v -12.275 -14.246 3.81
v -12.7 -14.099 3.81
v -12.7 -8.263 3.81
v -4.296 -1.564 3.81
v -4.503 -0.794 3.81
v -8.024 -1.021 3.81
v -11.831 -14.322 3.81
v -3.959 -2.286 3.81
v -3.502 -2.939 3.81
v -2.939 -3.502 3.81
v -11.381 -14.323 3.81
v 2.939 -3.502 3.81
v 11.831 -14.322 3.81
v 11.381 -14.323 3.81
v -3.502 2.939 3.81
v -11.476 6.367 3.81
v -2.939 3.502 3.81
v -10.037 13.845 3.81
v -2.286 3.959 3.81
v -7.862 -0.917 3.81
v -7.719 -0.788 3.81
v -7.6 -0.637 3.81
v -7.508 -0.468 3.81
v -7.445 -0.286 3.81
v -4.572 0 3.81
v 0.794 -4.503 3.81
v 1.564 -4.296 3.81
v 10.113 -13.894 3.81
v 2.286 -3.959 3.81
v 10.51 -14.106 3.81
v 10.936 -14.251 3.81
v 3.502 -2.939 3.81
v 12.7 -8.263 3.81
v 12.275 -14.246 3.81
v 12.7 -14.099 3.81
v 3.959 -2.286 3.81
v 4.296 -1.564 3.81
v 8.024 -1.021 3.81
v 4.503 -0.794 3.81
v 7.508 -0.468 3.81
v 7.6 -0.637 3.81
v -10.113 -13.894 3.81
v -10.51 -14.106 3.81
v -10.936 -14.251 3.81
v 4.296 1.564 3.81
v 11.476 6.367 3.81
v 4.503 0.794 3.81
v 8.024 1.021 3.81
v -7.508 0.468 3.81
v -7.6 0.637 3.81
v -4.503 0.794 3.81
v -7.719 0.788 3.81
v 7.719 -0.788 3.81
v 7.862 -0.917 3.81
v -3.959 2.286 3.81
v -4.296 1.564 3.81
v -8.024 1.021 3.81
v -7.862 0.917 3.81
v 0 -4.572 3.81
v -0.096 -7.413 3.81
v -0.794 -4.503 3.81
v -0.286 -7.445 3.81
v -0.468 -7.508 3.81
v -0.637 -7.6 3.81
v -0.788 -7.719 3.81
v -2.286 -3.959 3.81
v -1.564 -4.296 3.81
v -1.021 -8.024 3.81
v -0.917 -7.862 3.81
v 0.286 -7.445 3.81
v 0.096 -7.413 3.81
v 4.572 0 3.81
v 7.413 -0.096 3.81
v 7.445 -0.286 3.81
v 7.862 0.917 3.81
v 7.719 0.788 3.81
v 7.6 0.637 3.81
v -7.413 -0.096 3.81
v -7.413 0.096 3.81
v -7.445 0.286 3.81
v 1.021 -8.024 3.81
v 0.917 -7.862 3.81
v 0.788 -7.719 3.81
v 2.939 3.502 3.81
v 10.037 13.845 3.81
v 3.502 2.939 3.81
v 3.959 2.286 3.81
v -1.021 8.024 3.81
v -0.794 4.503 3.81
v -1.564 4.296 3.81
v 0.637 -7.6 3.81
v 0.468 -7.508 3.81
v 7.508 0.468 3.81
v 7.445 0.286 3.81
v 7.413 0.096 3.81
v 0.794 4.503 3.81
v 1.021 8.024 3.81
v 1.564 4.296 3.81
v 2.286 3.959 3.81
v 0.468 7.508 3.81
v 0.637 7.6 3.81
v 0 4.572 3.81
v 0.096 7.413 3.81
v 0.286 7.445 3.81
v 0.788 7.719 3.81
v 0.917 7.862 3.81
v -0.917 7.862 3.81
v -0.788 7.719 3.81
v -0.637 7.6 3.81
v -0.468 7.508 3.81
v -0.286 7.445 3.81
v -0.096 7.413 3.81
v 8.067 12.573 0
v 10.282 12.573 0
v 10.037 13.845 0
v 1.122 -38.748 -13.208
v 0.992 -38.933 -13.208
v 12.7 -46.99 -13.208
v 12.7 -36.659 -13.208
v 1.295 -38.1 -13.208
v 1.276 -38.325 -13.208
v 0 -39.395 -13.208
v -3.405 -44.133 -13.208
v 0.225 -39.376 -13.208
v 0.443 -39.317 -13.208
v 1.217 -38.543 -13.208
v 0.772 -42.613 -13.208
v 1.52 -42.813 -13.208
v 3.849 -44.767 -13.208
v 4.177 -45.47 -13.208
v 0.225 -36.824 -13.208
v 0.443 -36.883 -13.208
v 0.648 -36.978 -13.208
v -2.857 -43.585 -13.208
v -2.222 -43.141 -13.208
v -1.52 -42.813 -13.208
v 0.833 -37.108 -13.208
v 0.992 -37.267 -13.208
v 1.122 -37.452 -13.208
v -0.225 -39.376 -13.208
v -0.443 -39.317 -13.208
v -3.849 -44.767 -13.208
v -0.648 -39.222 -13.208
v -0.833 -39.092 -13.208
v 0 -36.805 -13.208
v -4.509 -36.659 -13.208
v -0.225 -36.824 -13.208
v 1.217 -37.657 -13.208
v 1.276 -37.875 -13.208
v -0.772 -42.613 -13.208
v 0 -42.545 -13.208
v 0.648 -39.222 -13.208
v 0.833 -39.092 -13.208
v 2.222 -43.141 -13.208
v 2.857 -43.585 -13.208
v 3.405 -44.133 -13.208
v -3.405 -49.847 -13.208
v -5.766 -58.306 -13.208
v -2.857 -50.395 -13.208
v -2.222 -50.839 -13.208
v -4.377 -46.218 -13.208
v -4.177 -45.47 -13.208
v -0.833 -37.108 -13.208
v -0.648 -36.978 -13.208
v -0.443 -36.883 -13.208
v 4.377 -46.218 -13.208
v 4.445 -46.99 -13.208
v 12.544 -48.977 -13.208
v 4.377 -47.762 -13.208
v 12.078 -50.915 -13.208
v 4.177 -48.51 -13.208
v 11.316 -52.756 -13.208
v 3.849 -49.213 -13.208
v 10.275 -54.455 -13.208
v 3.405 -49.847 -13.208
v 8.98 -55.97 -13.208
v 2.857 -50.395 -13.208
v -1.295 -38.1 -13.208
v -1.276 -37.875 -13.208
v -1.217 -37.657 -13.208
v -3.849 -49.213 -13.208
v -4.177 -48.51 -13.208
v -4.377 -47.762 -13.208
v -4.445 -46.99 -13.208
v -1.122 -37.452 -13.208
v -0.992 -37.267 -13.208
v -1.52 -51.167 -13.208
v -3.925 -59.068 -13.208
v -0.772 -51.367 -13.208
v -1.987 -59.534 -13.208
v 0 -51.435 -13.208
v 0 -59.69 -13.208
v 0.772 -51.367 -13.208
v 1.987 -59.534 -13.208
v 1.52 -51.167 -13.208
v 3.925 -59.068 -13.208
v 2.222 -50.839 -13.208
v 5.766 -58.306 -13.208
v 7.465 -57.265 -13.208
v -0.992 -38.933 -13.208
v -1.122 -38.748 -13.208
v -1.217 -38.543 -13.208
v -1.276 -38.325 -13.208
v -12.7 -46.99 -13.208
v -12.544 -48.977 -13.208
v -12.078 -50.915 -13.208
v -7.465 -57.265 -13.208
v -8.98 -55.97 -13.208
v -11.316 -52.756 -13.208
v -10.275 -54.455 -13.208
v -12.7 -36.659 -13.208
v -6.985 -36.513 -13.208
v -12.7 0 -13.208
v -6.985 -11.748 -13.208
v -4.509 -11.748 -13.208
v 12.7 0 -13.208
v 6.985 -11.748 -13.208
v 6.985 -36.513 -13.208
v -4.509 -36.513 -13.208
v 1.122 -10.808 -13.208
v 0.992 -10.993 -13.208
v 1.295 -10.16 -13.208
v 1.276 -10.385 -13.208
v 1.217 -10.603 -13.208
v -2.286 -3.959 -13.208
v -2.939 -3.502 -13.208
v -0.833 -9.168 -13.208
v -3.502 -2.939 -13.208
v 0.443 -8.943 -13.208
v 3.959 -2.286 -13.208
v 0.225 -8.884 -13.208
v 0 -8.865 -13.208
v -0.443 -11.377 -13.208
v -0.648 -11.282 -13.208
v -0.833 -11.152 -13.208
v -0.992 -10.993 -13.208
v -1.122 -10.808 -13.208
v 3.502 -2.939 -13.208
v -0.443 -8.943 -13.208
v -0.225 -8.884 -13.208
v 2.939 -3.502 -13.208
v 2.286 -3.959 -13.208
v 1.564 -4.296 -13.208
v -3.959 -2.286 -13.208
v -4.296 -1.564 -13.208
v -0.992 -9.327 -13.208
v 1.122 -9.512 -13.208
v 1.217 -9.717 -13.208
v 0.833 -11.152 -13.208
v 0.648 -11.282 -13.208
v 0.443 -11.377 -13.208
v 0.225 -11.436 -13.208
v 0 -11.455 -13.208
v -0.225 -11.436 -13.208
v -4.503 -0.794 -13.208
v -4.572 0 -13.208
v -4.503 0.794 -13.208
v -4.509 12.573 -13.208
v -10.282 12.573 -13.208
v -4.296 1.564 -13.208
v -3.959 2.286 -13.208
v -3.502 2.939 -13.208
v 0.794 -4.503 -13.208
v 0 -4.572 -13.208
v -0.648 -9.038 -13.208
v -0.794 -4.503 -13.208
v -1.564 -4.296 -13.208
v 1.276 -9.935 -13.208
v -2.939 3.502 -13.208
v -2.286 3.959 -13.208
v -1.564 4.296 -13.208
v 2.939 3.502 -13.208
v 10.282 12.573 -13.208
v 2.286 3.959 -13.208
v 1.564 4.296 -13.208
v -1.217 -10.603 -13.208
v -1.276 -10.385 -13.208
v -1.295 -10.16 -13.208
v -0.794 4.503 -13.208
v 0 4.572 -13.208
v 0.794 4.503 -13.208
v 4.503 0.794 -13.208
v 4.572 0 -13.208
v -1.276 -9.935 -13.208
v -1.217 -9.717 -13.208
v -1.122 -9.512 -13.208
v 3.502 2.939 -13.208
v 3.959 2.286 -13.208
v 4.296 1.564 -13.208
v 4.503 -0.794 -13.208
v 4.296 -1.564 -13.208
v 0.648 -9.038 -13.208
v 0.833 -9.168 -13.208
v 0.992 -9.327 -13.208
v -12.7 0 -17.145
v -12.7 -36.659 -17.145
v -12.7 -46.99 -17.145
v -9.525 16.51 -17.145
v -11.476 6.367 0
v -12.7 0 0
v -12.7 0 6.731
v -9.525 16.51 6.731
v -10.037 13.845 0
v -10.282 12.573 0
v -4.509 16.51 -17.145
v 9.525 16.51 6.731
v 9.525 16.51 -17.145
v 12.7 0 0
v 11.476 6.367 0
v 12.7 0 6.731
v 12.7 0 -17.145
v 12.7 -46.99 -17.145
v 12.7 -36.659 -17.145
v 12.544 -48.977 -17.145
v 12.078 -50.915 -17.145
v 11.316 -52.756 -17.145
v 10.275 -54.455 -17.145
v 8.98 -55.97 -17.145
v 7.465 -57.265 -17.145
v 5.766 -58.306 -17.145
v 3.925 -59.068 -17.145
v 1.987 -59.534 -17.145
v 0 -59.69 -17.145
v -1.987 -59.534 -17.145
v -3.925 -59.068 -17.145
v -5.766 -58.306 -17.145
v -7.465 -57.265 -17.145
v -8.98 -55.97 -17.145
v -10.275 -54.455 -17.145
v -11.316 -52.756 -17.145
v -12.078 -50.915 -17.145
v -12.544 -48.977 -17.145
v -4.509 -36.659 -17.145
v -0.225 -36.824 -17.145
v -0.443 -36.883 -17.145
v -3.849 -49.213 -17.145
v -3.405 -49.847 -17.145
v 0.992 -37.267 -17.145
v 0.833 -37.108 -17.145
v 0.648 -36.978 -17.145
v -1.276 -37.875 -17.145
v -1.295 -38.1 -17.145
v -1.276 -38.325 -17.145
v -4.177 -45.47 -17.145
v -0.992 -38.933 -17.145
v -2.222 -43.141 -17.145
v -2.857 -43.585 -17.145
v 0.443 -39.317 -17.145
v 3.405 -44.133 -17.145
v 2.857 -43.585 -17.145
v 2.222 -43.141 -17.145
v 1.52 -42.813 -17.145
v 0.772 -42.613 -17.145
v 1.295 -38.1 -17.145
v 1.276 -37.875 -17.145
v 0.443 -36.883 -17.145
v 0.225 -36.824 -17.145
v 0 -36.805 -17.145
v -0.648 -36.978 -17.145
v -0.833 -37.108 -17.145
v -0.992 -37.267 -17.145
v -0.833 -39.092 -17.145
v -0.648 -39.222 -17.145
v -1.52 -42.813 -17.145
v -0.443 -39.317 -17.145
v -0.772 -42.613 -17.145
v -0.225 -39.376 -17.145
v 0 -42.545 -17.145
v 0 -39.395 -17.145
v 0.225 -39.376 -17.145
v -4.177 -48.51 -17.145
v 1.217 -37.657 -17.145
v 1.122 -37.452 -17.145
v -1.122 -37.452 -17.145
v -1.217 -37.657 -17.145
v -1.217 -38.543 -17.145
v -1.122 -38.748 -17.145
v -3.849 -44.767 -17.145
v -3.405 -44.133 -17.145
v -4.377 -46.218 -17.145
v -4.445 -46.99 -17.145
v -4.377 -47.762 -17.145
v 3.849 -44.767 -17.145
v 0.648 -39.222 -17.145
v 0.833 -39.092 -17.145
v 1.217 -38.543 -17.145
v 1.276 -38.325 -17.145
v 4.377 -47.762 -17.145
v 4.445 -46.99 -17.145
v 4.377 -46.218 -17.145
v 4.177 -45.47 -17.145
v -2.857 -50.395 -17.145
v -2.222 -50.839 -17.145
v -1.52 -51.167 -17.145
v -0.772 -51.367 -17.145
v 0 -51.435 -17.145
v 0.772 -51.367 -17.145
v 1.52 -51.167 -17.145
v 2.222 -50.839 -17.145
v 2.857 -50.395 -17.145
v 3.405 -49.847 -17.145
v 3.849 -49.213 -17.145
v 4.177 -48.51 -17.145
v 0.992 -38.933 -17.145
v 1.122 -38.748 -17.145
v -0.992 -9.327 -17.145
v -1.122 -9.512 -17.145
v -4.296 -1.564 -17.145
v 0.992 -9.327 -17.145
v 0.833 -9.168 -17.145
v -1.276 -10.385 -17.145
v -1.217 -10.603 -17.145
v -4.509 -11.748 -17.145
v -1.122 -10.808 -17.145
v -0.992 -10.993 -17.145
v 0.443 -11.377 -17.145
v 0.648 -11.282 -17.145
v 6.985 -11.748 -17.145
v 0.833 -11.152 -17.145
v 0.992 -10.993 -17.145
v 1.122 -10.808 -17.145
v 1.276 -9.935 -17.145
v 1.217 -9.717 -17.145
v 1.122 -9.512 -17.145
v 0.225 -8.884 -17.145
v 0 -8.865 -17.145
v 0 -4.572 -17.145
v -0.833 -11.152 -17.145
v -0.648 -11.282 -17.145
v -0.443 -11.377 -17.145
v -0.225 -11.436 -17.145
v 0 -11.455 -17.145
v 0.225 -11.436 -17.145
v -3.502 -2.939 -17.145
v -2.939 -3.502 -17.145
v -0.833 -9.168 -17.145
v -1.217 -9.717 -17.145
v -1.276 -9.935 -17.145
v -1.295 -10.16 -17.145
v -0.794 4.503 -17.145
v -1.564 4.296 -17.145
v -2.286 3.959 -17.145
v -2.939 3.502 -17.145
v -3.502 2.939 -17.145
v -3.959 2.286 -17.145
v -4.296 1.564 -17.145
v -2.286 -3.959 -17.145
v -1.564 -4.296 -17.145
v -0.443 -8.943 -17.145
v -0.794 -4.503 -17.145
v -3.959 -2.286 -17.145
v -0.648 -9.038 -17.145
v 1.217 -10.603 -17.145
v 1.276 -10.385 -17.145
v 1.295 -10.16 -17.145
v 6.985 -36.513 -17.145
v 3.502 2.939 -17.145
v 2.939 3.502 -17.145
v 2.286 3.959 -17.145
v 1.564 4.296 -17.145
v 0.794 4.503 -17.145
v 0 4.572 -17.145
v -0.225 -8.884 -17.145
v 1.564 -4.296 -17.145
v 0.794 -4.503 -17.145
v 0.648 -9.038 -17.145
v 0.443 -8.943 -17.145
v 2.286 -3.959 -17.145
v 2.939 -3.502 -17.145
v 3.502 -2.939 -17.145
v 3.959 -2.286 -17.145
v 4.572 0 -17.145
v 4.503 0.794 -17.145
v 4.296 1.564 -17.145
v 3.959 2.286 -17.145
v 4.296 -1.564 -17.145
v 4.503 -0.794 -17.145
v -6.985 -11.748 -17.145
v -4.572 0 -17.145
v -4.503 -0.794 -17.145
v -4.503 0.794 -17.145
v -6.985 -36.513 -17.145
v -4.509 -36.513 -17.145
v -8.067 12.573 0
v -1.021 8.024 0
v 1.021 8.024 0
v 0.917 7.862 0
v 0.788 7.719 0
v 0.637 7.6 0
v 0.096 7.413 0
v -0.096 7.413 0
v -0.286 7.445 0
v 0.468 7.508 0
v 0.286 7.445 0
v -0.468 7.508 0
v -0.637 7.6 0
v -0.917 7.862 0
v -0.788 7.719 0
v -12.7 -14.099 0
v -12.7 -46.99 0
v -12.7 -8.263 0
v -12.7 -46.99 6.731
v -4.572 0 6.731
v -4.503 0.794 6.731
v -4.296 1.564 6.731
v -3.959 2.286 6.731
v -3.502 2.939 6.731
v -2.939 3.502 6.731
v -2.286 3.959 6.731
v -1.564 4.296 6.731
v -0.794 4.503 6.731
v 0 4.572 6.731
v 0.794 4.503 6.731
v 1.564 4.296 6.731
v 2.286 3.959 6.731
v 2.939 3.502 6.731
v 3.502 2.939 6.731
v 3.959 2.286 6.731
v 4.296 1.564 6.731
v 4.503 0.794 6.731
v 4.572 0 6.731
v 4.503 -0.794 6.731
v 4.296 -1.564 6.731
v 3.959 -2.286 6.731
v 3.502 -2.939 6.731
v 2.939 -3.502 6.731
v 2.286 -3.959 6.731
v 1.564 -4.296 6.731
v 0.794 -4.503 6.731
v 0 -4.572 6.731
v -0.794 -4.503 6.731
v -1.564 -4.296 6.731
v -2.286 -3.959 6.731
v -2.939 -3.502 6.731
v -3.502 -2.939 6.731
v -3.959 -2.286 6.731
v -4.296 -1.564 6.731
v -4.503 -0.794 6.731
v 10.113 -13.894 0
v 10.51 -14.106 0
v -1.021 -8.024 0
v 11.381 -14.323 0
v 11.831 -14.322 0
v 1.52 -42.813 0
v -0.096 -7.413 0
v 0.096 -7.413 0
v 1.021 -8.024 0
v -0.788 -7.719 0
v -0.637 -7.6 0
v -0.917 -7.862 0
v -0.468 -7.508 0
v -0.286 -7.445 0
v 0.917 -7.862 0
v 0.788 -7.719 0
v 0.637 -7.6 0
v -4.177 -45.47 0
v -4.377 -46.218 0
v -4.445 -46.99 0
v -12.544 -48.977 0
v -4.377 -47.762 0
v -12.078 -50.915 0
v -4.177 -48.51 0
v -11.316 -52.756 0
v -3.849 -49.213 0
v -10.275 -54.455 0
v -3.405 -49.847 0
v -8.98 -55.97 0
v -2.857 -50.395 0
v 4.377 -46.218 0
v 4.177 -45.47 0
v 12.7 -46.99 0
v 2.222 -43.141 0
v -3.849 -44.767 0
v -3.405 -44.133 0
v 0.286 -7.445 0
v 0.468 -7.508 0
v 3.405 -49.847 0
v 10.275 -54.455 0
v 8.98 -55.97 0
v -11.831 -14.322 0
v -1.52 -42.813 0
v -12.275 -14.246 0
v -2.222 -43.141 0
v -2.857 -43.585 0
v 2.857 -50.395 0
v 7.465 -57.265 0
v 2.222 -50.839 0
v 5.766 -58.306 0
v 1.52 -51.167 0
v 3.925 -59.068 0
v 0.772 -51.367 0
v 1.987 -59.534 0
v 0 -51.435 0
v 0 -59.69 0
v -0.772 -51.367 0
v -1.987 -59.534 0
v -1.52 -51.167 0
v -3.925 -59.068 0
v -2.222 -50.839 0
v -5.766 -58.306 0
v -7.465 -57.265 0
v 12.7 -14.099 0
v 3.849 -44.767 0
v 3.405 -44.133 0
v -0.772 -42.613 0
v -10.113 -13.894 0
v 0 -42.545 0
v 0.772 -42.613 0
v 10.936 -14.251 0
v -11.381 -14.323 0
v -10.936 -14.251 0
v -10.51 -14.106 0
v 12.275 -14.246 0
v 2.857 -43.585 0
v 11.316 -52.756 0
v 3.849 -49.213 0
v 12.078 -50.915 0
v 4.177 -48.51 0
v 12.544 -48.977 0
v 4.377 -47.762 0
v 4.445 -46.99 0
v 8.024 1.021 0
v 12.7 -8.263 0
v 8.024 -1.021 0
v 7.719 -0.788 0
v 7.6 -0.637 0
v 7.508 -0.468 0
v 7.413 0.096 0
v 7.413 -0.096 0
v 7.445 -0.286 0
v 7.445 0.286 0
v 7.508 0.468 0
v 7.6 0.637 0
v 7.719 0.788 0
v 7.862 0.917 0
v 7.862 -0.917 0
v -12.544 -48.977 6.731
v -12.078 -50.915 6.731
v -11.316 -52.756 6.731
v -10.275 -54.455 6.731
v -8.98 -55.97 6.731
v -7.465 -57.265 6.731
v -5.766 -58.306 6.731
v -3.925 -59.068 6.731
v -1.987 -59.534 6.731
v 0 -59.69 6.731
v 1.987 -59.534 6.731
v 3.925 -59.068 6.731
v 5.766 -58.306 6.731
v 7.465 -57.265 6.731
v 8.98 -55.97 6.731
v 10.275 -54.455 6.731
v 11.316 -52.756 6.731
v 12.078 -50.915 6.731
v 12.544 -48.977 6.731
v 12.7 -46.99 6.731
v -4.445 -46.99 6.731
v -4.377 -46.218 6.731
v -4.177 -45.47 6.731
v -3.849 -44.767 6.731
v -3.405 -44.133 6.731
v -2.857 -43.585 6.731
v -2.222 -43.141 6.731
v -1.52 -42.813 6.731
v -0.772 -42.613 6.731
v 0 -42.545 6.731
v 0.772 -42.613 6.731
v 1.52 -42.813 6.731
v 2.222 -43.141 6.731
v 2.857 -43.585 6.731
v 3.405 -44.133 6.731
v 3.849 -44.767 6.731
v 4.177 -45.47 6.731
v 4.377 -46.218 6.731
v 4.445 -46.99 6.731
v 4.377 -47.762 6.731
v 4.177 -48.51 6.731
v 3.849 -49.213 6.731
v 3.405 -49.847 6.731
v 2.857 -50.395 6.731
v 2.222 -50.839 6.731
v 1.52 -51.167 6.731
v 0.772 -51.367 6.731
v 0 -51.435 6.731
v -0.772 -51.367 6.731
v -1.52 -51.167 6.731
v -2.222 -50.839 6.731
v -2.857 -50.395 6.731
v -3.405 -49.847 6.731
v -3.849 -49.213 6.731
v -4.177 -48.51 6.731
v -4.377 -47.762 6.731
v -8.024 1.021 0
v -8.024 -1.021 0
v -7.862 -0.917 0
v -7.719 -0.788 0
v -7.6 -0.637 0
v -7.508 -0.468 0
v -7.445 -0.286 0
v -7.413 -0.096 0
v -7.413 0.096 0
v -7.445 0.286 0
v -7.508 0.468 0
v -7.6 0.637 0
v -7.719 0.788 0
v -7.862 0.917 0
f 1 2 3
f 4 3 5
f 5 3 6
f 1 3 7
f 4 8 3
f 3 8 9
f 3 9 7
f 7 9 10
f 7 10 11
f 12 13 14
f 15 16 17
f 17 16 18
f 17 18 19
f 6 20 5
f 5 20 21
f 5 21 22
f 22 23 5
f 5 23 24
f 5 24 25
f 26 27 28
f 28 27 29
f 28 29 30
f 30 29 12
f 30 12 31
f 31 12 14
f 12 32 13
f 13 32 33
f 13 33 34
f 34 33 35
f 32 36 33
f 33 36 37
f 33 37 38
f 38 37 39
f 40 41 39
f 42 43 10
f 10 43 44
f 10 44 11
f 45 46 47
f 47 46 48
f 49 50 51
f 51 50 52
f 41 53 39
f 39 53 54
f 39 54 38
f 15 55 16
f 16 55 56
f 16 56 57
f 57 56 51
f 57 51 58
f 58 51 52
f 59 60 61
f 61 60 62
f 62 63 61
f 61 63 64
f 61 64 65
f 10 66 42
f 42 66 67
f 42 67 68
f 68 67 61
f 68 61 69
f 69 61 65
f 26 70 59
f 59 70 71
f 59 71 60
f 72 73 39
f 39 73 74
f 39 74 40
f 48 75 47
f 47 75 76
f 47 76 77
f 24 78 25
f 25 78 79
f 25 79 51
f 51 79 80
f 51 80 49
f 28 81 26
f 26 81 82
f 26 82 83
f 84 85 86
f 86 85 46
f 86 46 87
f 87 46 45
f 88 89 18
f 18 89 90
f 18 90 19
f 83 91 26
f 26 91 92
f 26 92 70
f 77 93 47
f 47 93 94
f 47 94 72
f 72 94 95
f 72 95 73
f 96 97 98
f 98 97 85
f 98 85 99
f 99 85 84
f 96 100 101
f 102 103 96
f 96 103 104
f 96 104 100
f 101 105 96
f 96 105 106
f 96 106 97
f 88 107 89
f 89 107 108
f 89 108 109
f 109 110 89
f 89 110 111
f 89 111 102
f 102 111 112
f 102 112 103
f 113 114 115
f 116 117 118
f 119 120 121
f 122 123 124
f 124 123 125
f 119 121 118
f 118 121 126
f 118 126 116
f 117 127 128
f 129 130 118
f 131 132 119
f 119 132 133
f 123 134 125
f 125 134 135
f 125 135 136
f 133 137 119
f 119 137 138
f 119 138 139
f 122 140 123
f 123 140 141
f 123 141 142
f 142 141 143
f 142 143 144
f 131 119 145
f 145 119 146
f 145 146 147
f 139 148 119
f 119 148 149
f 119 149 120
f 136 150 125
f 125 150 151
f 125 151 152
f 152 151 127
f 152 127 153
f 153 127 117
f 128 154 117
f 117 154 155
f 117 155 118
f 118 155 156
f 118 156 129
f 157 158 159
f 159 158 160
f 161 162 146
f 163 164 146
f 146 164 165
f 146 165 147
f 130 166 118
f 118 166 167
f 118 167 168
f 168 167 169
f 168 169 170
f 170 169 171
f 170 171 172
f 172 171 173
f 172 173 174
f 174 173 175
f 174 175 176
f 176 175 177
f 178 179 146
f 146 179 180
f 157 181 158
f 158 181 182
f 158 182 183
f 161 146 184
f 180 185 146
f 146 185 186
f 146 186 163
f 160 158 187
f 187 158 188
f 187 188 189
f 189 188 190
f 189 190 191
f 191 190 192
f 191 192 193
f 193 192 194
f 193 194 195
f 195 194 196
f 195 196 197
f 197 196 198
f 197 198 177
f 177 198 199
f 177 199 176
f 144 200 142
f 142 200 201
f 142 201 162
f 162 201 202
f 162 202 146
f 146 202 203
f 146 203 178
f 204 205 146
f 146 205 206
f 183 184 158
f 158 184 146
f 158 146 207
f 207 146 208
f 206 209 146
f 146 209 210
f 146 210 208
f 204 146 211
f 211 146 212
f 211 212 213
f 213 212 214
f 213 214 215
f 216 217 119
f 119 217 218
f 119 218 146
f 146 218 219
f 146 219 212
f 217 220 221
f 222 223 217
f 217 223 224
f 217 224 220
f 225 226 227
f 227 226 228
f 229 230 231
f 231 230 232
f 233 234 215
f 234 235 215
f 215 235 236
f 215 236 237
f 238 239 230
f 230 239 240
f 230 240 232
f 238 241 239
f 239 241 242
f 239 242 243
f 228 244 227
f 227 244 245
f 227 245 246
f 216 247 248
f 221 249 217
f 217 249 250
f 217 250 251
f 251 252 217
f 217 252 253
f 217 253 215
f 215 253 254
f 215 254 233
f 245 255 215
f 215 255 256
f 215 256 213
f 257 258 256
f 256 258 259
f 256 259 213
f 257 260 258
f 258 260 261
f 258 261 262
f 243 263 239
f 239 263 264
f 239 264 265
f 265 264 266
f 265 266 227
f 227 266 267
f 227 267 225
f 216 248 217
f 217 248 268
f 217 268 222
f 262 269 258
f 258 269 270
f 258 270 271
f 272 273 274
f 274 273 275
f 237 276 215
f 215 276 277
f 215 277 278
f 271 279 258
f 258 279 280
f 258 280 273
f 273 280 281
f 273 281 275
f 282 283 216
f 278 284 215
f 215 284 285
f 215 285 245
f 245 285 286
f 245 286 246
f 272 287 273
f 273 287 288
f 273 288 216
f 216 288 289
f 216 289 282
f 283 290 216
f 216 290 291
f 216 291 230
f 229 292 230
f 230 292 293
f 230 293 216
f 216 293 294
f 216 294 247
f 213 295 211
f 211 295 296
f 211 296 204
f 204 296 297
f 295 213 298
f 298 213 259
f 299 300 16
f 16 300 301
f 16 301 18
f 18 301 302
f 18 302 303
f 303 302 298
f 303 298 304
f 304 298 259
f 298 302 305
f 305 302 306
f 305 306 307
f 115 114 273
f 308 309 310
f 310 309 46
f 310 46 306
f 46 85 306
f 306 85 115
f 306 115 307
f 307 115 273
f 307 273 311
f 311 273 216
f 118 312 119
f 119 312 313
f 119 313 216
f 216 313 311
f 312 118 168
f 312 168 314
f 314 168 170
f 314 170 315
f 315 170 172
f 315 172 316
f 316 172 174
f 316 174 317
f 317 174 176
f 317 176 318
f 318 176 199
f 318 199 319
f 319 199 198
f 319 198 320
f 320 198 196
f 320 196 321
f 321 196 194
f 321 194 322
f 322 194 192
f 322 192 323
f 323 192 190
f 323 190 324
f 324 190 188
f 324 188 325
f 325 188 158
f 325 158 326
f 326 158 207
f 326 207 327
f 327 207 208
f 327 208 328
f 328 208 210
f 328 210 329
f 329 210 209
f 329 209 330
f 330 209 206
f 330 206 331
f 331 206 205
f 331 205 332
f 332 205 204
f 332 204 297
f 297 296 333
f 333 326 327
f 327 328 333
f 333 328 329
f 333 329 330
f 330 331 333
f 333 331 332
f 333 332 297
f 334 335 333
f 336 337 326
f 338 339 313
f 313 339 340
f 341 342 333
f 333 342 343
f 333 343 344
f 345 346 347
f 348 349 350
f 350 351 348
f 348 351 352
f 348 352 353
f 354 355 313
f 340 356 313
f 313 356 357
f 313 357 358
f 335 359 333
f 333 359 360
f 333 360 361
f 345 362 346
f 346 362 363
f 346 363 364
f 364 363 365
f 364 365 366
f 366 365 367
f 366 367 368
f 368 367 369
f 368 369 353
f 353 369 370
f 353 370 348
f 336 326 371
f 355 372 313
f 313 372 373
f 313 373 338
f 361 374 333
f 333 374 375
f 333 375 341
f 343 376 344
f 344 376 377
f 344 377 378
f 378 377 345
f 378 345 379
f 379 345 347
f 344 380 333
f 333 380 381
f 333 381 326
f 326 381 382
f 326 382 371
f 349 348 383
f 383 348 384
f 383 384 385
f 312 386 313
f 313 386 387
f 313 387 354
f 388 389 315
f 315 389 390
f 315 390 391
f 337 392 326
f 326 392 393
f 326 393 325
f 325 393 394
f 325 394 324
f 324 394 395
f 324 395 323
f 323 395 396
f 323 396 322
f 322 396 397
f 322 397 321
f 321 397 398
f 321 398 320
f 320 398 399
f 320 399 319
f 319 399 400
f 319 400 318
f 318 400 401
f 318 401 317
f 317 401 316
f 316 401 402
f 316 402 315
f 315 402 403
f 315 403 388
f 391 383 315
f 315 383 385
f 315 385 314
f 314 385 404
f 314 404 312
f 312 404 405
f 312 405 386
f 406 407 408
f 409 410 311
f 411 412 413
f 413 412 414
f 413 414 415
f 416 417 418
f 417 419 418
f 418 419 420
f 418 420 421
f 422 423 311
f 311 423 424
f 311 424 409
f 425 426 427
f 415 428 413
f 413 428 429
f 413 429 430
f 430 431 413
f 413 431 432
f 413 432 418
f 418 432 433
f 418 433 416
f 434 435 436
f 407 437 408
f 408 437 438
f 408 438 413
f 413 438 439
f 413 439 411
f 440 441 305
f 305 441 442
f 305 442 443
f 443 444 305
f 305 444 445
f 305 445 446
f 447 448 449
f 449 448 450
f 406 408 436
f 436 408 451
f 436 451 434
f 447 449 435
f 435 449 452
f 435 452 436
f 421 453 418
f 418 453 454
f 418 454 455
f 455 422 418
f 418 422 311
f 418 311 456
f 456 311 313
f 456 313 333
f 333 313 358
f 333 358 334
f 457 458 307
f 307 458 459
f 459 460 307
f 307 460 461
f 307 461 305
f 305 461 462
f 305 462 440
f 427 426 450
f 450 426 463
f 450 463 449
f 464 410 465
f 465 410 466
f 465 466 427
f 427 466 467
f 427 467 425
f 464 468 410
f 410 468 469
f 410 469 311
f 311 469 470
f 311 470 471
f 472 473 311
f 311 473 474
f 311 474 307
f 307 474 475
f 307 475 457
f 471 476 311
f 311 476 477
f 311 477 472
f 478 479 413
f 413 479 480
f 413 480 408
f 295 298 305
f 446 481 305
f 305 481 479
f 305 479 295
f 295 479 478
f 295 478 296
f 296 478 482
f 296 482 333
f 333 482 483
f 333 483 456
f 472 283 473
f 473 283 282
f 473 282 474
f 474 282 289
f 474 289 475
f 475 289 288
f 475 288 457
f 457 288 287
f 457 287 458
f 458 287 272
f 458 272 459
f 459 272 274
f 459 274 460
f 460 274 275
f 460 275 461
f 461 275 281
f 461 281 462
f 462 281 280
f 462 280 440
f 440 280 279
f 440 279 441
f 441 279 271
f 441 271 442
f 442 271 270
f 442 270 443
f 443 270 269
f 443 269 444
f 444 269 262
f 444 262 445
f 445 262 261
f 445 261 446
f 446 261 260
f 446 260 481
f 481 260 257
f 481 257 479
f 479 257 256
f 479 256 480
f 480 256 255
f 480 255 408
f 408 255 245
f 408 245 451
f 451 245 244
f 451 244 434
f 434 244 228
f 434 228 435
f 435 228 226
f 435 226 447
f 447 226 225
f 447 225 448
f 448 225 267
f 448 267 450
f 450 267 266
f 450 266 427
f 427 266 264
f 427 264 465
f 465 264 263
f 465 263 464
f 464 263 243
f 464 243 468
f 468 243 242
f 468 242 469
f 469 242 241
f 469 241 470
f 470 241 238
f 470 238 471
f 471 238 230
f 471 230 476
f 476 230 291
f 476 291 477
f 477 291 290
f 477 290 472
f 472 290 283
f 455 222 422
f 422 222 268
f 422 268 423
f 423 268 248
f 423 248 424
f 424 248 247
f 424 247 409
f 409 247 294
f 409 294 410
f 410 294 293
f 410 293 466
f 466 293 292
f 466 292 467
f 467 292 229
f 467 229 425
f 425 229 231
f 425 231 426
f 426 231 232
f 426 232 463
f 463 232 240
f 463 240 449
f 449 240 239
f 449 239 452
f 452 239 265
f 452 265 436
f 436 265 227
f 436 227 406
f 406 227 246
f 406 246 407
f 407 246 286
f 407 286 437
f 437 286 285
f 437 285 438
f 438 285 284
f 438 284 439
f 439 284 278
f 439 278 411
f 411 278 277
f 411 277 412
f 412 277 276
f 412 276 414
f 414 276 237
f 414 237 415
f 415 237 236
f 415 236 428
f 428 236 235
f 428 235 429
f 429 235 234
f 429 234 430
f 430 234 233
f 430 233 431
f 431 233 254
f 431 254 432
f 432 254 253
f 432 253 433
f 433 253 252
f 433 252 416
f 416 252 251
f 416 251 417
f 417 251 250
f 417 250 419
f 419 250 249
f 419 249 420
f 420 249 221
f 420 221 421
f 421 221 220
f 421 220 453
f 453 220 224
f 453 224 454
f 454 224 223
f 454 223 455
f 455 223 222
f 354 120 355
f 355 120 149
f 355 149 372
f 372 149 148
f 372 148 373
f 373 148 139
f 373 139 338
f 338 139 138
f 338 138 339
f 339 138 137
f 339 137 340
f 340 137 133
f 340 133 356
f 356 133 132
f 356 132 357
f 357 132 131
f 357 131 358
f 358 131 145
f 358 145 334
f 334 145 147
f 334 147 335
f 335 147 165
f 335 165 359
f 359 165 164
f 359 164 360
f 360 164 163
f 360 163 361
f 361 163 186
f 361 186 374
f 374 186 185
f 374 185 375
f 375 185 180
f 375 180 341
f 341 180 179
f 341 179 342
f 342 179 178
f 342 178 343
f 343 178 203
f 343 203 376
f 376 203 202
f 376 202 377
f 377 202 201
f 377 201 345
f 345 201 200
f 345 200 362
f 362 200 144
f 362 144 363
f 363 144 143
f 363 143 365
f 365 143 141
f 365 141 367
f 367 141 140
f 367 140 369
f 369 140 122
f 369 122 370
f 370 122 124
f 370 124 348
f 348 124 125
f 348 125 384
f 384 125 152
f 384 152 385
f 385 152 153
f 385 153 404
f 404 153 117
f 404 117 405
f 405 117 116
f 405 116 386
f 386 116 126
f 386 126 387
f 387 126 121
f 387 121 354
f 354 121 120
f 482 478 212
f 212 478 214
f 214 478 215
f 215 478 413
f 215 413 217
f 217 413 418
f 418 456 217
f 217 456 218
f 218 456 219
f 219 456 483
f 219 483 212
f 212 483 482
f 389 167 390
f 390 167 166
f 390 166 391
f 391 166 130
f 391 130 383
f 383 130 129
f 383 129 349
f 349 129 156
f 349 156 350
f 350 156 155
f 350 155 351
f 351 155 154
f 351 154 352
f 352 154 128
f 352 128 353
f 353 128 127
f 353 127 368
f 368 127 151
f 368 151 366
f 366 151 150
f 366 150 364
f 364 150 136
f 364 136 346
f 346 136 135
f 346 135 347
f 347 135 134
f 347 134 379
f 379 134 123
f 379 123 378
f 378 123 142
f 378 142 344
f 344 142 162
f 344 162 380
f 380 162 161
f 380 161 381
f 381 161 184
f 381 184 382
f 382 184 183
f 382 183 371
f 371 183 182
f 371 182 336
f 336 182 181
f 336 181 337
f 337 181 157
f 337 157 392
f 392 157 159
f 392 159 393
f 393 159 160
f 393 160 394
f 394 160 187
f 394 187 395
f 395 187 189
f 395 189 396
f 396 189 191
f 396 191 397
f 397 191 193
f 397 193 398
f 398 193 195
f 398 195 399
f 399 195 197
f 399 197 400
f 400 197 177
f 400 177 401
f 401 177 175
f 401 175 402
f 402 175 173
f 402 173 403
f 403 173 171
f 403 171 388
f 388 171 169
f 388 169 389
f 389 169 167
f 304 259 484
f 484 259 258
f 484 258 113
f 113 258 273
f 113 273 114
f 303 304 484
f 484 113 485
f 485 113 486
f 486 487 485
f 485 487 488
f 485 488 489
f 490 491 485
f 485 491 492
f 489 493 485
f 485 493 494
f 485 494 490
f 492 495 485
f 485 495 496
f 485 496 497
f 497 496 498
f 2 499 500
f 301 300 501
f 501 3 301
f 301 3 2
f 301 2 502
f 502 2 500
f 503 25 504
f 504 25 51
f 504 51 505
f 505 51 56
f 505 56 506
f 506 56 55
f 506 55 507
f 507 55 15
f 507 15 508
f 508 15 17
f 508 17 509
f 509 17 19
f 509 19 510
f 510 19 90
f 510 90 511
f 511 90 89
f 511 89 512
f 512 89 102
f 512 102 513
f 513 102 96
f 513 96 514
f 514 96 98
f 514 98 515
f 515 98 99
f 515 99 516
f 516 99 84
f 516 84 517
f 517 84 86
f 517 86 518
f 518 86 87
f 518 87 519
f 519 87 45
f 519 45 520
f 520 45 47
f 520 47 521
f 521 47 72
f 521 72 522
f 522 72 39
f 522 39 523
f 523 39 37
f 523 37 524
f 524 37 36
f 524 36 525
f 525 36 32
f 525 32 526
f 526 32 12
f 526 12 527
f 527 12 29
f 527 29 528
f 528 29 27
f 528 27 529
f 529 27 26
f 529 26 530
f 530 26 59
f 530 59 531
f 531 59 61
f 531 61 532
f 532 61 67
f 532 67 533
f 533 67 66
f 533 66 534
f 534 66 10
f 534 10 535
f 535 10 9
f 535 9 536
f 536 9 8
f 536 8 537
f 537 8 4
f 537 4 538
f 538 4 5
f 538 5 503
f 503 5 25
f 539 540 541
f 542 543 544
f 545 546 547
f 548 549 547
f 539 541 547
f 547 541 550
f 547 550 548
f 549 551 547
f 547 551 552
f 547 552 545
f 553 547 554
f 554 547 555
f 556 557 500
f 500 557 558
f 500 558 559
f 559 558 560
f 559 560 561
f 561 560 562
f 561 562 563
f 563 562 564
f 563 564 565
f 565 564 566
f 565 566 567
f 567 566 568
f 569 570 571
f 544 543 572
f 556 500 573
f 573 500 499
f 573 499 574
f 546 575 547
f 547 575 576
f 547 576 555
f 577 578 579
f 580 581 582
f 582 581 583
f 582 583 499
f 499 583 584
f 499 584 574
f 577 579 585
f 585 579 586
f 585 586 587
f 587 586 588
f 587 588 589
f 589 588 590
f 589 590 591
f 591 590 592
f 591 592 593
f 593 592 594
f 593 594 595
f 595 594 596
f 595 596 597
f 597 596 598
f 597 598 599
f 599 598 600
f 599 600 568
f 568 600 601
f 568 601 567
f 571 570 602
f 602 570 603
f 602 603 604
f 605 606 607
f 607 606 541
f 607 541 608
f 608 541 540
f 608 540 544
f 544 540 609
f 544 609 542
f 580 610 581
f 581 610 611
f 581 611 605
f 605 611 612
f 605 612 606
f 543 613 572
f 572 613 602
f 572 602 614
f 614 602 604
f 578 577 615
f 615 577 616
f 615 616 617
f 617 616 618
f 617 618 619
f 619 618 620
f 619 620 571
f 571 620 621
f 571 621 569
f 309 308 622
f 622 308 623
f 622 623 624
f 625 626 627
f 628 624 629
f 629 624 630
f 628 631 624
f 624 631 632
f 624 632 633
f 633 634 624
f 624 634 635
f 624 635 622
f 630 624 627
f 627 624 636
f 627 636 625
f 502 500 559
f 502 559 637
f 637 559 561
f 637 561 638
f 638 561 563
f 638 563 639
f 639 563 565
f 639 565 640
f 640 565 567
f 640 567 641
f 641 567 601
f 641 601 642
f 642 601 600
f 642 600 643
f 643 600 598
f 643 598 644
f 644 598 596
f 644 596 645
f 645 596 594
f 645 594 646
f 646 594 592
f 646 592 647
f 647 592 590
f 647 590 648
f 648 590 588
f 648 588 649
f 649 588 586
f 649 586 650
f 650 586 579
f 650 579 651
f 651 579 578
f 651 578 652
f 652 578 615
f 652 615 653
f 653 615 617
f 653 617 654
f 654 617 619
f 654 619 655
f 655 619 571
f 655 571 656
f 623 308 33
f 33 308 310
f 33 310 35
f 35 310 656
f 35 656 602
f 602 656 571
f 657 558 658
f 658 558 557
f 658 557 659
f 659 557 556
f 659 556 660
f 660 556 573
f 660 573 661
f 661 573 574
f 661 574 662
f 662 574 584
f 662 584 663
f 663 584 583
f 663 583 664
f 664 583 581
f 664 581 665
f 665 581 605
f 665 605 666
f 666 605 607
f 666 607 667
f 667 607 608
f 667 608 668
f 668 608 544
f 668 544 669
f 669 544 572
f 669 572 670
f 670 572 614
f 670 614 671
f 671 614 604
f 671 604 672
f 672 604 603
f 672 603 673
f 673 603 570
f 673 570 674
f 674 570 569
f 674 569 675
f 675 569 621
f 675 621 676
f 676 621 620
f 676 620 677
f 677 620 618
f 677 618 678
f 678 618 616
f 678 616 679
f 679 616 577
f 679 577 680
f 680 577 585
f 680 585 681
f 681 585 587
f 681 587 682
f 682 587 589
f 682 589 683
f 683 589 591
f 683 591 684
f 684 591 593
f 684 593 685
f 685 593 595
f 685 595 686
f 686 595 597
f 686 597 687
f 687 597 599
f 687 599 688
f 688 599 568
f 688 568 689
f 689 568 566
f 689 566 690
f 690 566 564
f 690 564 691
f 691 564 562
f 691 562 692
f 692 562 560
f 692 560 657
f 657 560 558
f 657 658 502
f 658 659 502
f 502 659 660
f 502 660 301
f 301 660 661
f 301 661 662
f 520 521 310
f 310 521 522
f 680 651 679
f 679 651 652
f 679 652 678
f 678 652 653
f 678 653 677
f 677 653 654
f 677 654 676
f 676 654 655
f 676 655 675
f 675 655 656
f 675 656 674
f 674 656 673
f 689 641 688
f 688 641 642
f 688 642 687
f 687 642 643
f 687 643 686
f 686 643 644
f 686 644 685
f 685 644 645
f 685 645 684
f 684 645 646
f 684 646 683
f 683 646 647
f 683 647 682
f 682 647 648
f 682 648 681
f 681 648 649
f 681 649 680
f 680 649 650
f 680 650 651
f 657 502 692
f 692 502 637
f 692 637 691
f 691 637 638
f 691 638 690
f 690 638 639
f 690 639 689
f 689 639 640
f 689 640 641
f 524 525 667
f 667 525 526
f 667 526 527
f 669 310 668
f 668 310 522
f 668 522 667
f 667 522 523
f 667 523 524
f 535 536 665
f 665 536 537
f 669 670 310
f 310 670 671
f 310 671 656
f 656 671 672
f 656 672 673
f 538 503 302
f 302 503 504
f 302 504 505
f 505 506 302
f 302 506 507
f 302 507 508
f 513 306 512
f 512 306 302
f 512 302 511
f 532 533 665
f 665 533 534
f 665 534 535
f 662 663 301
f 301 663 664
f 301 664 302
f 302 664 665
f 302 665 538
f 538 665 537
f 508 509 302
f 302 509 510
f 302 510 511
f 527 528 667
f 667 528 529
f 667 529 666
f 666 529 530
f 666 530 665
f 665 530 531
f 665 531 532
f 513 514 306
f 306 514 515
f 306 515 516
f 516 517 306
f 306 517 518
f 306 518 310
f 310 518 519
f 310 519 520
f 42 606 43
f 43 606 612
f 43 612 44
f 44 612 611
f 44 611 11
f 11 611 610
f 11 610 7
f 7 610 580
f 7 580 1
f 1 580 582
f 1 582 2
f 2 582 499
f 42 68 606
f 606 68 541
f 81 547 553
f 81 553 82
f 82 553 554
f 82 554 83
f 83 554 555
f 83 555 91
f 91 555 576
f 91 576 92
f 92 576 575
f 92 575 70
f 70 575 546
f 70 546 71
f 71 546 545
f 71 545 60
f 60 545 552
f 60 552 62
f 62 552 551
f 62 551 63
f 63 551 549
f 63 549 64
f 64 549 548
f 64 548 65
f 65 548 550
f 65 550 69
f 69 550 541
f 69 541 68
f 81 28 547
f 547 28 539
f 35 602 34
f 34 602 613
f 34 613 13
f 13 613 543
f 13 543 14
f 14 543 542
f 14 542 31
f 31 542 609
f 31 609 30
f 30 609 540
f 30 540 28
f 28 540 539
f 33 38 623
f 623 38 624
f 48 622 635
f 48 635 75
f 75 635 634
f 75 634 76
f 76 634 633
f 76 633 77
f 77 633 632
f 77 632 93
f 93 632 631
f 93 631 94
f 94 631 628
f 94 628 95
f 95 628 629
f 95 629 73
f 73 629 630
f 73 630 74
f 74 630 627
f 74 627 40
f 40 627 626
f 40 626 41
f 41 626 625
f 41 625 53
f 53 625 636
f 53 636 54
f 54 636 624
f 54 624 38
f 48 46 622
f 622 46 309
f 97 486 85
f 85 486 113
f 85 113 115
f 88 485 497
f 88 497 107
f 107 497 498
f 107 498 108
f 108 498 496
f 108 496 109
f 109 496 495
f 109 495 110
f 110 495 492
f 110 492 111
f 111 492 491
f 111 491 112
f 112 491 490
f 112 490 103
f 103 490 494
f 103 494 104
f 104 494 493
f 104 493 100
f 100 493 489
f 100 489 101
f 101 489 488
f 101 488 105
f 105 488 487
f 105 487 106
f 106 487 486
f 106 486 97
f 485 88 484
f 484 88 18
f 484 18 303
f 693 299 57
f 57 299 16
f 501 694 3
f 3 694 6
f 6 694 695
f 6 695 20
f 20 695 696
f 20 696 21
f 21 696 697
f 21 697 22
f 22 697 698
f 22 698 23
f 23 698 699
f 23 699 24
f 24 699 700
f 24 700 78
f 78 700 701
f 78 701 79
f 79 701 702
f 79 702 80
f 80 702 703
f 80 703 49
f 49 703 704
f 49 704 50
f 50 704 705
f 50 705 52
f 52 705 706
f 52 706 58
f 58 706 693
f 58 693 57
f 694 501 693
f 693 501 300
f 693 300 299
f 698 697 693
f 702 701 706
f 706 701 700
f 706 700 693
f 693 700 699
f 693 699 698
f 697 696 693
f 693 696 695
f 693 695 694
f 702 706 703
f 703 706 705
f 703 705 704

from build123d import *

# Parameters (mm, degrees)
SKETCH1_R           = 4.572
SKETCH1_R_2         = 4.445
BOSS_EXTRUDE1_DEPTH = 6.731
BOSS_EXTRUDE3_START = -13.208
SKETCH1_5_R         = 4.572
SKETCH1_5_R_2       = 1.2954
SKETCH1_5_R_3       = 4.445
SKETCH1_5_W         = 13.97
SKETCH1_5_H         = 24.765
BOSS_EXTRUDE3_DEPTH = 3.937
SKETCH4_R           = 1.7
CUT_EXTRUDE4_DEPTH  = 3.81
BOSS_EXTRUDE5_DEPTH = 16.4211
BOSS_EXTRUDE6_DEPTH = 4.572


with BuildPart() as part:
    # Sketch1 (on Front Plane) → Boss-Extrude1 (new body)
    with BuildSketch(Plane.XY):
        with BuildLine():
            Line((-12.7, 0), (-9.525, 16.51))
            Line((-9.525, 16.51), (9.525, 16.51))
            Line((9.525, 16.51), (12.7, 0))
            Line((12.7, 0), (12.7, -46.99))
            ThreePointArc((12.7, -46.99), (0, -59.69), (-12.7, -46.99))
            Line((-12.7, -46.99), (-12.7, 0))
        make_face()
        Circle(SKETCH1_R, mode=Mode.SUBTRACT)
        with Locations((0, -46.99)):
            Circle(SKETCH1_R_2, mode=Mode.SUBTRACT)
    extrude(amount=BOSS_EXTRUDE1_DEPTH)

    # Sketch4 → Cut-Extrude4 (cut)
    with BuildSketch(Plane(origin=(0, 0, 0), x_dir=(-1, 0, 0), z_dir=(0, 0, -1))):
        with BuildLine():
            Line((12.7, -14.099075092), (12.7, 0))
            Line((12.7, 0), (11.302104433, 7.269056948))
            Line((11.302104433, 7.269056948), (10.037418608, 13.84542324))
            Line((10.037418608, 13.84542324), (1.021082558, 8.023816422))
            ThreePointArc((1.021082558, 8.023816422), (0, 7.408645479), (-1.021082558, 8.023816422))
            Line((-1.021082558, 8.023816422), (-10.037418608, 13.84542324))
            Line((-10.037418608, 13.84542324), (-11.47556666, 6.367053366))
            Line((-11.47556666, 6.367053366), (-8.023816422, 1.021082558))
            ThreePointArc((-8.023816422, 1.021082558), (-7.408645479, 0), (-8.023816422, -1.021082558))
            Line((-8.023816422, -1.021082558), (-12.7, -8.263420264))
            Line((-12.7, -8.263420264), (-12.7, -14.099075092))
            ThreePointArc((-12.7, -14.099075092), (-11.380658922, -14.323016968), (-10.113003756, -13.894226547))
            Line((-10.113003756, -13.894226547), (-1.021082558, -8.023816422))
            ThreePointArc((-1.021082558, -8.023816422), (0, -7.408645479), (1.021082558, -8.023816422))
            Line((1.021082558, -8.023816422), (10.113003756, -13.894226547))
            ThreePointArc((10.113003756, -13.894226547), (11.380658922, -14.323016968), (12.7, -14.099075092))
        make_face()
        Circle(SKETCH4_R, mode=Mode.SUBTRACT)
    extrude(amount=-CUT_EXTRUDE4_DEPTH, mode=Mode.SUBTRACT)



with BuildPart() as body_2:
    # Sketch1<5> → Boss-Extrude3 (new body)
    with BuildSketch(Plane.XY.offset(BOSS_EXTRUDE3_START)):
        with BuildLine():
            Line((-12.7, 0), (-9.525, 16.51))
            Line((-9.525, 16.51), (9.525, 16.51))
            Line((9.525, 16.51), (12.7, 0))
            Line((12.7, 0), (12.7, -46.99))
            ThreePointArc((12.7, -46.99), (0, -59.69), (-12.7, -46.99))
            Line((-12.7, -46.99), (-12.7, 0))
        make_face()
        Circle(SKETCH1_5_R, mode=Mode.SUBTRACT)
        with Locations((0, -10.16)):
            Circle(SKETCH1_5_R_2, mode=Mode.SUBTRACT)
        with Locations((0, -38.1)):
            Circle(SKETCH1_5_R_2, mode=Mode.SUBTRACT)
        with Locations((0, -46.99)):
            Circle(SKETCH1_5_R_3, mode=Mode.SUBTRACT)
        with Locations((0, -24.13)):
            Rectangle(SKETCH1_5_W, SKETCH1_5_H, mode=Mode.SUBTRACT)
    extrude(amount=-BOSS_EXTRUDE3_DEPTH)


with BuildPart() as part_1:
    add(part.part)

    add(body_2.part)  # Boss-Extrude5 merges body 2
    # Sketch5 → Boss-Extrude5 (add)
    with BuildSketch(Plane(origin=(0, 0, 0), x_dir=(-1, 0, 0), z_dir=(0, 0, -1))):
        Polygon((-9.525, 16.51), (9.525, 16.51), (10.282115385, 12.573), (-10.282115385, 12.573), align=None)
    extrude(amount=BOSS_EXTRUDE5_DEPTH)

    # Sketch4<3> → Boss-Extrude6 (add)
    with BuildSketch(Plane(origin=(0, 0, 0), x_dir=(-1, 0, 0), z_dir=(0, 0, -1))):
        with BuildLine():
            Line((11.47556666, 6.367053366), (8.023816422, 1.021082558))
            ThreePointArc((8.023816422, 1.021082558), (7.408645479, 0), (8.023816422, -1.021082558))
            Line((8.023816422, -1.021082558), (12.7, -8.263420264))
            Line((12.7, -8.263420264), (12.7, 0))
            Line((12.7, 0), (11.47556666, 6.367053366))
        make_face()
    extrude(amount=-BOSS_EXTRUDE6_DEPTH)


solid = part_1.part
